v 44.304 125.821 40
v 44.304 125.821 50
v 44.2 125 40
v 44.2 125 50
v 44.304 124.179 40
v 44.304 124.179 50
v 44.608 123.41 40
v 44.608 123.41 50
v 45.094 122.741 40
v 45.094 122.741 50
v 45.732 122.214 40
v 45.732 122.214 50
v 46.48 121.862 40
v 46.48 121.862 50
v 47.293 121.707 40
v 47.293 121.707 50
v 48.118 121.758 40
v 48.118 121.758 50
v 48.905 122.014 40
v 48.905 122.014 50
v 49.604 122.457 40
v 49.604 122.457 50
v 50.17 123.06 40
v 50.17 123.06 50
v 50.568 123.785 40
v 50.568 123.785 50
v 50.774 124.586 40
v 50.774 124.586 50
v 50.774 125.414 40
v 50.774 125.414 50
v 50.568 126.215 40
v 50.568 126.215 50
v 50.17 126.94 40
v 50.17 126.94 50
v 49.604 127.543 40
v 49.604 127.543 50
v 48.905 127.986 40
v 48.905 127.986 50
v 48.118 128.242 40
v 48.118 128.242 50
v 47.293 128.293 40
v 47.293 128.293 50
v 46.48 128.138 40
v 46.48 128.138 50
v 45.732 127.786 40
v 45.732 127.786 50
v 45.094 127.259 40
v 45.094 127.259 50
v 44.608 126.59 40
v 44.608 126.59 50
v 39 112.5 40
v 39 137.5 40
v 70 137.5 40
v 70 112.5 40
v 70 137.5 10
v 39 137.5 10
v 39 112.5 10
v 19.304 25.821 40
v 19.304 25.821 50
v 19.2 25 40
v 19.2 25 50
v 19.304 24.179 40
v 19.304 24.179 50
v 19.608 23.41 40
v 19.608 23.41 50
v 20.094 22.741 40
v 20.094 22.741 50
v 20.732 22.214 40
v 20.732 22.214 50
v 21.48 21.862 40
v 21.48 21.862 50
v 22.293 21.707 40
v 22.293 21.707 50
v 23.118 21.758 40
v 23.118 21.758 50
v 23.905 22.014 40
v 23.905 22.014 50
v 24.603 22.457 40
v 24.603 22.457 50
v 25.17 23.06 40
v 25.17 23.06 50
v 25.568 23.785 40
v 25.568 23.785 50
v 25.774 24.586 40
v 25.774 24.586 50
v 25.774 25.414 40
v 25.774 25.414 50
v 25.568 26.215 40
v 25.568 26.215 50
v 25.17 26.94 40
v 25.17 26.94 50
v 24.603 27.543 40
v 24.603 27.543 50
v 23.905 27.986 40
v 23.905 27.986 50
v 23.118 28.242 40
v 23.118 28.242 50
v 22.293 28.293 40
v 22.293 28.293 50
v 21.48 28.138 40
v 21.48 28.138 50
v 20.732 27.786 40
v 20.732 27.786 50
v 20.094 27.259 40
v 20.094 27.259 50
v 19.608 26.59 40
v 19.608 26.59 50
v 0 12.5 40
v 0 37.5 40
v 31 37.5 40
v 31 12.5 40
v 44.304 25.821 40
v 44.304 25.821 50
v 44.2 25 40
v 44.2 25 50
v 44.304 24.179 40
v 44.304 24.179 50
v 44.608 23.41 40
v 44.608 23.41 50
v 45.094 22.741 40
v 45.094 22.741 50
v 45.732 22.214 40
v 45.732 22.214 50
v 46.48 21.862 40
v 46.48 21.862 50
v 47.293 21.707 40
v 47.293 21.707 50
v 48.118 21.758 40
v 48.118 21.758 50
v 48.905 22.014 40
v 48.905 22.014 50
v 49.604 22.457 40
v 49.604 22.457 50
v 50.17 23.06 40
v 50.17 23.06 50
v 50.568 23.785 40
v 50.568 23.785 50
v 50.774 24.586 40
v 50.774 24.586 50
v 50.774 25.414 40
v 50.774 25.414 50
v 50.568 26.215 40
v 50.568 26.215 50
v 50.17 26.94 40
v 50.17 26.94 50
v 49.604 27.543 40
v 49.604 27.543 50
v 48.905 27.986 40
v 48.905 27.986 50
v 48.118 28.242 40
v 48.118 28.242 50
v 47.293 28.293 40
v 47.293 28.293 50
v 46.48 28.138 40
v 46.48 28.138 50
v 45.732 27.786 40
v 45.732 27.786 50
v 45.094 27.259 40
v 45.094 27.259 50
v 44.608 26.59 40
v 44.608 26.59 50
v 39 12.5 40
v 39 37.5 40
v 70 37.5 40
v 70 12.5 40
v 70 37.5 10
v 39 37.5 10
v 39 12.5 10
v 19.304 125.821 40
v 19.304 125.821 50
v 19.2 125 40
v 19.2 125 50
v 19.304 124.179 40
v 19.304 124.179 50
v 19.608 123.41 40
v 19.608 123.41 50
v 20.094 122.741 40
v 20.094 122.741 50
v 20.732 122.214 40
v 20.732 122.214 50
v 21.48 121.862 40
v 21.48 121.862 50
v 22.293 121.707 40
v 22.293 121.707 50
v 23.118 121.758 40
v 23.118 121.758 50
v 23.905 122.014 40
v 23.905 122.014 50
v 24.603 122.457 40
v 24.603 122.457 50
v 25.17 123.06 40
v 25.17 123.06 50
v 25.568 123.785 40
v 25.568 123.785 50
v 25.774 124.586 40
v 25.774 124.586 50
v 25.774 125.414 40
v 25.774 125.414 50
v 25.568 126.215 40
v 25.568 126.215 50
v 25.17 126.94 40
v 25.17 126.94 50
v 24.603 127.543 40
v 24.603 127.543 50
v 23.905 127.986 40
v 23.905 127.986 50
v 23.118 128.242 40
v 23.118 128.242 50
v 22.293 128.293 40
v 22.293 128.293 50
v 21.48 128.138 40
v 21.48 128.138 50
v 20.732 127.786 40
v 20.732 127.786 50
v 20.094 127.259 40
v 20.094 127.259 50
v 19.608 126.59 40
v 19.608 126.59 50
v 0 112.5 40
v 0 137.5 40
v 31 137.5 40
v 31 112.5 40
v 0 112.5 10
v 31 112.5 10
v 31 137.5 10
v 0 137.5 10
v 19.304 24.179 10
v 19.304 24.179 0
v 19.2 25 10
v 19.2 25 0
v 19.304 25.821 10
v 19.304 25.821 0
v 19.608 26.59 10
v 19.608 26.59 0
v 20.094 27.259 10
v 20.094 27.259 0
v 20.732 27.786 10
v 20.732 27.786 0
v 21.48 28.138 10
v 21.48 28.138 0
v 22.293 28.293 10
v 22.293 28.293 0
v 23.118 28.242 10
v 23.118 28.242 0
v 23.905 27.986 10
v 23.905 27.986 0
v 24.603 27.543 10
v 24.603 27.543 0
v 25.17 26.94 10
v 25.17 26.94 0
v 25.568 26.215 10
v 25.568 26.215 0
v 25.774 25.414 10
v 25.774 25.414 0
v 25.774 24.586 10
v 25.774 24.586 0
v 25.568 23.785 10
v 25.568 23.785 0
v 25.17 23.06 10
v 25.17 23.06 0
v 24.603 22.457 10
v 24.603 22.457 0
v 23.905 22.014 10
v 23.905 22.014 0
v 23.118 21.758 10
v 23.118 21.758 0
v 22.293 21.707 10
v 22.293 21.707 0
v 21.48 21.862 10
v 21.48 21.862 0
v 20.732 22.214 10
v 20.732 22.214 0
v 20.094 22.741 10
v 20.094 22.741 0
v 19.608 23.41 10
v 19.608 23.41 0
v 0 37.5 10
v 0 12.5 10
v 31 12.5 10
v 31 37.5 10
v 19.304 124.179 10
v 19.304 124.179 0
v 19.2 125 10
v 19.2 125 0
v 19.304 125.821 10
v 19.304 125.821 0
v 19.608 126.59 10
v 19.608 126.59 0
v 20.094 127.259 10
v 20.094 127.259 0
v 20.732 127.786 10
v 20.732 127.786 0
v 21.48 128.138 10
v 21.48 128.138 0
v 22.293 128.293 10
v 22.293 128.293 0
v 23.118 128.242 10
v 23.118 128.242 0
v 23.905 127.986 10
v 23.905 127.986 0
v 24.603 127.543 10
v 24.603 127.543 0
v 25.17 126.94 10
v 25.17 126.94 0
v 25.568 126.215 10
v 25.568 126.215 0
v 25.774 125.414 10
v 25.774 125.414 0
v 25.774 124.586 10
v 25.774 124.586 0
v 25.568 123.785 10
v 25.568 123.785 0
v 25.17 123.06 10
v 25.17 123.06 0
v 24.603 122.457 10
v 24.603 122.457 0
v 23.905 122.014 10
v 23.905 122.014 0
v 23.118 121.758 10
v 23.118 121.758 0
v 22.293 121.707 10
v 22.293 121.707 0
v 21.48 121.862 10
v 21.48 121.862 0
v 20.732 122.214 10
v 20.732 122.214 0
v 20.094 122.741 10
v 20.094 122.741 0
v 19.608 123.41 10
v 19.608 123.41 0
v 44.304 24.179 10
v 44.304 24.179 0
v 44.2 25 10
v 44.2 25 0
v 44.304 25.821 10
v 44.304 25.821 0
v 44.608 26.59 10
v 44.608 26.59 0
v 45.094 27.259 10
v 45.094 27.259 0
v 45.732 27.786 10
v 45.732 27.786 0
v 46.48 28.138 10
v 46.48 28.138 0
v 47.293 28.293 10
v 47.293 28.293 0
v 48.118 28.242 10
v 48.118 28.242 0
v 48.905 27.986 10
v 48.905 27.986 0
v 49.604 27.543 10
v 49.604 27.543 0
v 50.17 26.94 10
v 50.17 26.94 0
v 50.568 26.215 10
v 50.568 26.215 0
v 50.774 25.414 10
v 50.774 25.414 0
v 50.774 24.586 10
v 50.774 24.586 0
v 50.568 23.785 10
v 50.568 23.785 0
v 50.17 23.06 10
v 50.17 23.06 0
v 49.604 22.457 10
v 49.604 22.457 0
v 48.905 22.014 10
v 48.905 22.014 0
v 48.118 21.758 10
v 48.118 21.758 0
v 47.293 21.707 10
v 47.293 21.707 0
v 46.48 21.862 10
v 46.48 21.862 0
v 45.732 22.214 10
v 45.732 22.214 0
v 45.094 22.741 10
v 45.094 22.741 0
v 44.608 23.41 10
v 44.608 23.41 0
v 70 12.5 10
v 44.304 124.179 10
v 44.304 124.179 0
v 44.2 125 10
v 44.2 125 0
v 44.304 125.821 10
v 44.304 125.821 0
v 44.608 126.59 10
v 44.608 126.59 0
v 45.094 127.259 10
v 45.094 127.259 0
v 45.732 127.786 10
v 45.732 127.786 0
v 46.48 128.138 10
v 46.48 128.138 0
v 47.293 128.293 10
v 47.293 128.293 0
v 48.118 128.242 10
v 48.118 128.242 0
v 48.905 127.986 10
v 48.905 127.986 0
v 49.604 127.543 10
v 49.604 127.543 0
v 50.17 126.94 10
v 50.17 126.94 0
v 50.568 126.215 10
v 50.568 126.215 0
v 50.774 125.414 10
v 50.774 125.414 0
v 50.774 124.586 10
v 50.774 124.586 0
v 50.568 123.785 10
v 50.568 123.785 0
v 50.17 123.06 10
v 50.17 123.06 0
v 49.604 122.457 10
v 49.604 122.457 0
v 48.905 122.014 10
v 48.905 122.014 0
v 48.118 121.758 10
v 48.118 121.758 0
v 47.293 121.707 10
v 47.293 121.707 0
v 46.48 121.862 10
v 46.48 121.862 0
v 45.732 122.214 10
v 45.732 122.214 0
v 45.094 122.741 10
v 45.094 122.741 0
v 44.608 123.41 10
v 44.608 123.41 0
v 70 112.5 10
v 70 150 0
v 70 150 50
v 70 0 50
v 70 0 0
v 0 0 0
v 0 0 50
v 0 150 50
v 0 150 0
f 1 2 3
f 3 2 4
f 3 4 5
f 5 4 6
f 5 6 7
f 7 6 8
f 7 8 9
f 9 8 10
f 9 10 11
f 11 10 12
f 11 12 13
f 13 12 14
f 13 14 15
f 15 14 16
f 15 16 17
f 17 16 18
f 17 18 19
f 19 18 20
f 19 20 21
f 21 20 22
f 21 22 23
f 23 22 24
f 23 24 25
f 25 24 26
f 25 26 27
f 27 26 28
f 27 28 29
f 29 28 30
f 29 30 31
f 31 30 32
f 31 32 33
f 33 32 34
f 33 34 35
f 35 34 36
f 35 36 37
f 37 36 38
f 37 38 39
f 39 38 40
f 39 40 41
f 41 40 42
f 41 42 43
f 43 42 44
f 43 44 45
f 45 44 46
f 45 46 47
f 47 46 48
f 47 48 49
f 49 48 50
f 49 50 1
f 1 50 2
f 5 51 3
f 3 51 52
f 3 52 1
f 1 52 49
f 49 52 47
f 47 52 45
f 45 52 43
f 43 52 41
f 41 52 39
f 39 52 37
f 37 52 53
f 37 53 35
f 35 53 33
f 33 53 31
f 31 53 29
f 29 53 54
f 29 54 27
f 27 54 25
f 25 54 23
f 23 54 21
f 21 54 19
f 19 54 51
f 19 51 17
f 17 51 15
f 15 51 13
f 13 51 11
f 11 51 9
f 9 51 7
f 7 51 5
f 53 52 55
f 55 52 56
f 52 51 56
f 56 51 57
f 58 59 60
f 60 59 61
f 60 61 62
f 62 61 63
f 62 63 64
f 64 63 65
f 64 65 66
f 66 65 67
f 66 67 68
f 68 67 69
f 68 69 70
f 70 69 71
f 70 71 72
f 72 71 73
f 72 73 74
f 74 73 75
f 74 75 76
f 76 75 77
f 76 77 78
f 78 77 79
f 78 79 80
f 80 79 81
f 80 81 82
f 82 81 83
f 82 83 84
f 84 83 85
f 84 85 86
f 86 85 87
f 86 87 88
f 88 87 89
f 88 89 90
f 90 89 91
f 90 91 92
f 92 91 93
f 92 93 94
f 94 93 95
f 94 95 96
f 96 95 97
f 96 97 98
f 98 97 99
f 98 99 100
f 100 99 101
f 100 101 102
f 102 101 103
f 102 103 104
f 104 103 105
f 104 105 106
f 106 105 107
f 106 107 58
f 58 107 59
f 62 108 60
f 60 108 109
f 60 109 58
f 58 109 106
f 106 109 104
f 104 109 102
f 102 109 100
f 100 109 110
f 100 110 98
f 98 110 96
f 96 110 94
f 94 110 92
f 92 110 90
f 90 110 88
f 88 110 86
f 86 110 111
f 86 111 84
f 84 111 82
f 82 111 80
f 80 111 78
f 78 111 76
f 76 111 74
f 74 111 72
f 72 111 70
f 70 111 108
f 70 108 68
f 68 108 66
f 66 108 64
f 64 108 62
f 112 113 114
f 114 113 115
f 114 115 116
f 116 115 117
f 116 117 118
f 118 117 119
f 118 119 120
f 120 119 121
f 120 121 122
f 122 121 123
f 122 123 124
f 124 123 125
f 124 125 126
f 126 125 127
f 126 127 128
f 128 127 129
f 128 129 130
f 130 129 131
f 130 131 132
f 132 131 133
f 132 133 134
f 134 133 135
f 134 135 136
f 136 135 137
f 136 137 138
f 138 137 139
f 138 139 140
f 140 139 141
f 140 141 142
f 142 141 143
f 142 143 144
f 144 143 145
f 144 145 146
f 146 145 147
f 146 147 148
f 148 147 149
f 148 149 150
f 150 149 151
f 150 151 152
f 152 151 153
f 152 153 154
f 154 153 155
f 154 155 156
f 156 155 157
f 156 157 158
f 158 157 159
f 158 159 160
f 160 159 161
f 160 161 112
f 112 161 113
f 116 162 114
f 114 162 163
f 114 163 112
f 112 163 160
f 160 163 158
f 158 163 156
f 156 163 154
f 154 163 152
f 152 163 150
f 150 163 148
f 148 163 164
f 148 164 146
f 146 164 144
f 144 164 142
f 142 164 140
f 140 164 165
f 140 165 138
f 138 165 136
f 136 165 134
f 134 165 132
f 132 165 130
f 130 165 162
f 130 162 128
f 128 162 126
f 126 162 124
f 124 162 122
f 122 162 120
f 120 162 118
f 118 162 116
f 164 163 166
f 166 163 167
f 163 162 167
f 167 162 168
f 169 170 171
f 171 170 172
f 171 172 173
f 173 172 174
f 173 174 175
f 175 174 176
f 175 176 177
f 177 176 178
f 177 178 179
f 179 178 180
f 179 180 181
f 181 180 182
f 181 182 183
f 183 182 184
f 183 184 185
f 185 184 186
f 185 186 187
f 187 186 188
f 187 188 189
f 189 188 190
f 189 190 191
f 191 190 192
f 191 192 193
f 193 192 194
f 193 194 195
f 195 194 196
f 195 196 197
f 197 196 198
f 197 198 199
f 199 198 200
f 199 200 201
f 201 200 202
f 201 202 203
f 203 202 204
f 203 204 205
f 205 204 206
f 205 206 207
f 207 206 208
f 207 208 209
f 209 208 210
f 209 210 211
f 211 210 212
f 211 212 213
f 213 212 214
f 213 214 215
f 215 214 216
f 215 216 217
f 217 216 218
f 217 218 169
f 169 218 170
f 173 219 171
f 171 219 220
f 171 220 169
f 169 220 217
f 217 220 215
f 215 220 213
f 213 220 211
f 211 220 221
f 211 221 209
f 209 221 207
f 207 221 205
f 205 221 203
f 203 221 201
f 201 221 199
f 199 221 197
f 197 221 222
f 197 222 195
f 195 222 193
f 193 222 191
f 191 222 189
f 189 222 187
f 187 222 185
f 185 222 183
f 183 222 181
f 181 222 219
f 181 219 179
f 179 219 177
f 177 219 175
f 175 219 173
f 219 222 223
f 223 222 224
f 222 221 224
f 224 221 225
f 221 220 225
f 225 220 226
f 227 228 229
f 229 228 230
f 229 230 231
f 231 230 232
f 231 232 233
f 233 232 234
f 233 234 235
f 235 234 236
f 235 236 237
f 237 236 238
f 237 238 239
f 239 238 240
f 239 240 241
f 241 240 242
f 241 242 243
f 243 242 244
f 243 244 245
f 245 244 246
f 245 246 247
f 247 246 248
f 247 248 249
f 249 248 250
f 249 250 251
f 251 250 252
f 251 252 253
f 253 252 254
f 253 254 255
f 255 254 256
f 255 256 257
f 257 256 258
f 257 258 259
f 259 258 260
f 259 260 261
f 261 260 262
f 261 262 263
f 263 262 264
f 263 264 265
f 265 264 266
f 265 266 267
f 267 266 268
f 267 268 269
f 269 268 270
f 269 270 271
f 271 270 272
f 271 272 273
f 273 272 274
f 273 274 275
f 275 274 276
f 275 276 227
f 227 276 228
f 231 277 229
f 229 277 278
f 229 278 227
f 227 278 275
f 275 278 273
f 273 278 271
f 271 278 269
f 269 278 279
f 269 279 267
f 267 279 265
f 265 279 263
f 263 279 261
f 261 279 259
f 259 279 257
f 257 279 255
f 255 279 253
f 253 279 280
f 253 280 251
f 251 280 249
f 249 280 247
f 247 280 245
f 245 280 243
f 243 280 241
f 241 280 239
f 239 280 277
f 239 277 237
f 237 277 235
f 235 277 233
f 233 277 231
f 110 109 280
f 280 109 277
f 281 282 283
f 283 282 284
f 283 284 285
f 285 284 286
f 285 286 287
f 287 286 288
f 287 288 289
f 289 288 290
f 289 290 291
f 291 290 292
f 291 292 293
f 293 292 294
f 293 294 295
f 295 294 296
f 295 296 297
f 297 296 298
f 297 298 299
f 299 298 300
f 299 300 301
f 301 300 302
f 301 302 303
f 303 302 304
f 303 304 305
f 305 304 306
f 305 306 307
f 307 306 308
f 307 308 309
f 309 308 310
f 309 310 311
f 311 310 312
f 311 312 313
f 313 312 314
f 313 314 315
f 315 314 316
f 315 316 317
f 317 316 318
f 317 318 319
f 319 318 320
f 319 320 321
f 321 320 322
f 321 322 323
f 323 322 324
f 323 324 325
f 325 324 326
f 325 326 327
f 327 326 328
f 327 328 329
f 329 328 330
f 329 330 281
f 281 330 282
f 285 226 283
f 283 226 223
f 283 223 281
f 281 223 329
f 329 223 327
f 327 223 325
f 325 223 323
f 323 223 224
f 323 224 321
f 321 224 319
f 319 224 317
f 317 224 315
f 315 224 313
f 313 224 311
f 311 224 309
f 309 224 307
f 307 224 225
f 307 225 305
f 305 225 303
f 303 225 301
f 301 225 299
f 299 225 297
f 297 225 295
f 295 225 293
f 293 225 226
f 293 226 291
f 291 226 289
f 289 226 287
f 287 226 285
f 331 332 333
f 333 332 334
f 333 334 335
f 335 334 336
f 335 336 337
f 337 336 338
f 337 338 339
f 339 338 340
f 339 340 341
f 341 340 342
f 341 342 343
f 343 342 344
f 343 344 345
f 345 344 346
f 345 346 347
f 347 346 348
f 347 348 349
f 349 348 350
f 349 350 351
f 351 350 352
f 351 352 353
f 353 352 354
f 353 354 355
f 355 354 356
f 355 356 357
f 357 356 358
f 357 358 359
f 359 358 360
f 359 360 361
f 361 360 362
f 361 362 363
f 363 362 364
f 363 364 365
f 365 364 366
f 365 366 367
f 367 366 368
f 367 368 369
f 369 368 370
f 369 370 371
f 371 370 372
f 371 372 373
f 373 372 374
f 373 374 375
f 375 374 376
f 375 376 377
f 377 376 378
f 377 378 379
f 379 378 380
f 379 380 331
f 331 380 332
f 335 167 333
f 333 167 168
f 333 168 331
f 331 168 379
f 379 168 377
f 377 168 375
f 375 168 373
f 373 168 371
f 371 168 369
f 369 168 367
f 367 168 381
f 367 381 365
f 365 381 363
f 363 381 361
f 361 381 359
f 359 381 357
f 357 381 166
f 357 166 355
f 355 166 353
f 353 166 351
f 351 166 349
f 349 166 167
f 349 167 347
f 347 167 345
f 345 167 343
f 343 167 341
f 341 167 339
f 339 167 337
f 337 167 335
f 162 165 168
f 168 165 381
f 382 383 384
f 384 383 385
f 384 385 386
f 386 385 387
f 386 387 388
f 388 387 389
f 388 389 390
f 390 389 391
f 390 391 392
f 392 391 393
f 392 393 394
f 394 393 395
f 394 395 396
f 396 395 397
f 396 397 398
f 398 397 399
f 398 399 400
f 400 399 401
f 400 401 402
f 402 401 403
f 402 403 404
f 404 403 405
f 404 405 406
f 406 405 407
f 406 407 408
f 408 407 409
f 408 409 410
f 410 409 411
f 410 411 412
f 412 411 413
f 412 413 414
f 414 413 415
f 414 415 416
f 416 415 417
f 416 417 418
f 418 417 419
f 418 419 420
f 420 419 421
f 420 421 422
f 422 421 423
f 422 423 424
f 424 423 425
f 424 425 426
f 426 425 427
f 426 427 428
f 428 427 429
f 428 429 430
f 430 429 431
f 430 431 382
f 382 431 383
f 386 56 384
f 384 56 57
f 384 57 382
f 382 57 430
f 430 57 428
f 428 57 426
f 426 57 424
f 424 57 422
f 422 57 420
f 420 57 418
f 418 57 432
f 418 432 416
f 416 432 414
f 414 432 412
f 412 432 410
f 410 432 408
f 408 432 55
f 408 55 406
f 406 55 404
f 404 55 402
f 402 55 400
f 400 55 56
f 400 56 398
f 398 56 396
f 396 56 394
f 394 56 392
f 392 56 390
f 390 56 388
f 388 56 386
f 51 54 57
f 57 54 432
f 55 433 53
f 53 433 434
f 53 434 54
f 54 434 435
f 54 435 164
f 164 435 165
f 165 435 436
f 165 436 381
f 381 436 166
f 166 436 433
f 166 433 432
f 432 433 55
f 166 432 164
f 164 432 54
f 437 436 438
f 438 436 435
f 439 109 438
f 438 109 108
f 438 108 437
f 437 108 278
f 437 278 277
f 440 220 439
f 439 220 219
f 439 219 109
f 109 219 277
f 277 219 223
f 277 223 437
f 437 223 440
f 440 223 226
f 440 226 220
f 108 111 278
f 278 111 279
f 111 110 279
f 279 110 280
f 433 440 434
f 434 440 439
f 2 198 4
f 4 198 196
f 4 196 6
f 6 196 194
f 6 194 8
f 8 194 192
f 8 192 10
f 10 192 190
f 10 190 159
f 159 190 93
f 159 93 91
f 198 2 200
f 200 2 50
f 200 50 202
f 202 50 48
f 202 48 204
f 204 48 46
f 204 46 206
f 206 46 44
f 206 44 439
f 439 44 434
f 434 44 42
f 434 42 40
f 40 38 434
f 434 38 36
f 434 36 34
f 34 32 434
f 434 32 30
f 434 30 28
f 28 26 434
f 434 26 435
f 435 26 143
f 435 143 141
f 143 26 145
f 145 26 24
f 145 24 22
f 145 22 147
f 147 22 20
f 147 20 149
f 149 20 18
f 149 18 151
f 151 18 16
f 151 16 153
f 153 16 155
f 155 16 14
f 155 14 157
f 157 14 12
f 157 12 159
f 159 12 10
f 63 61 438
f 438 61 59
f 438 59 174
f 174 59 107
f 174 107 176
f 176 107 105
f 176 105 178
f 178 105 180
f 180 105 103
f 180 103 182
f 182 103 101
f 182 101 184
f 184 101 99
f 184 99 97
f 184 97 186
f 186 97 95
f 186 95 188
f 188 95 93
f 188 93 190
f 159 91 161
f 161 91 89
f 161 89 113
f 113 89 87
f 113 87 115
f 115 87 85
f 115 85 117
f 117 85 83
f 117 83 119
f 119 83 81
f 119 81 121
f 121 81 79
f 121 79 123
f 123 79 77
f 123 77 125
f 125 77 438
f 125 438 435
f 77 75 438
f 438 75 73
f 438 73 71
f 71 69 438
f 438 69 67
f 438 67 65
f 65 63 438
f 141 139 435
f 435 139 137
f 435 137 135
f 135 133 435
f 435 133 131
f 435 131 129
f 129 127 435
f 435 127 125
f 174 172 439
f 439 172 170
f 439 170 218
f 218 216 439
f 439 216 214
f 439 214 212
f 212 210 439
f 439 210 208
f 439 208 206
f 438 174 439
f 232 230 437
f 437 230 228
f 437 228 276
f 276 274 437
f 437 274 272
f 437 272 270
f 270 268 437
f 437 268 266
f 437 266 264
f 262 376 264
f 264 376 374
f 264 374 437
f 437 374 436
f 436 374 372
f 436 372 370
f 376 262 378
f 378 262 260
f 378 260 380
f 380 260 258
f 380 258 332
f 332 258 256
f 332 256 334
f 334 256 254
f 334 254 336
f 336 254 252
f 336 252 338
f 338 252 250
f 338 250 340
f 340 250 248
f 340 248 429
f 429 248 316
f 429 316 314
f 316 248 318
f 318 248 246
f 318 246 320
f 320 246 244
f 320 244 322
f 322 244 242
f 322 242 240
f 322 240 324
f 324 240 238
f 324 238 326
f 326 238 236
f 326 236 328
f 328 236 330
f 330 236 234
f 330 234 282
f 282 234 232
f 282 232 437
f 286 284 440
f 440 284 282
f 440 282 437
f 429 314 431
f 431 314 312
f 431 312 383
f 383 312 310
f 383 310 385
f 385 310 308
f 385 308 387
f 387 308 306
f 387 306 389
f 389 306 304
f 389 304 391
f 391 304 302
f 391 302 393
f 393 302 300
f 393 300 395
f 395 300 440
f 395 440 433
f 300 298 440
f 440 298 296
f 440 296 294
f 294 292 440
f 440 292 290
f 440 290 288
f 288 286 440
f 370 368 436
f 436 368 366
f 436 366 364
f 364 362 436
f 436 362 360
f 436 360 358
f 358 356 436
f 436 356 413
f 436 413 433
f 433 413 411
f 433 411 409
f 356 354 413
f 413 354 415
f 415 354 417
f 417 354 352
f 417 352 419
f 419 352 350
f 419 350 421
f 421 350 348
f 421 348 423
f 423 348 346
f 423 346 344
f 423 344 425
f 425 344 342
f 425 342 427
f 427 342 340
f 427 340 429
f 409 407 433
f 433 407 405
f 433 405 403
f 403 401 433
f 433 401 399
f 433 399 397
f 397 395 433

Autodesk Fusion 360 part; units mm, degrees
sketch "Sketch1" plane through (0, 0, 0) normal (0, 0, 1) x (1, 0, 0)
  line L0 (0, 0) -> (70, 0)
  line L1 (70, 0) -> (70, 150)
  line L2 (70, 150) -> (0, 150)
  line L3 (0, 150) -> (0, 0)
  circle A0 centre (22.5, 25) radius 3.3
  circle A1 centre (47.5, 25) radius 3.3
  circle A2 centre (22.5, 125) radius 3.3
  circle A3 centre (47.5, 125) radius 3.3
  line L4 (22.5, 25) -> (0, 25)
  line L5 (0, 25) -> (31, 25)
  line L6 (31, 25) -> (31, 37.5)
  line L7 (31, 37.5) -> (0, 37.5)
  line L8 (0, 37.5) -> (0, 25)
  line L9 (0, 25) -> (31, 25)
  line L10 (31, 25) -> (31, 12.5)
  line L11 (31, 12.5) -> (0, 12.5)
  line L12 (0, 12.5) -> (0, 25)
  line L13 (70, 37.5) -> (39, 37.5)
  line L14 (39, 37.5) -> (39, 12.5)
  line L15 (39, 12.5) -> (70, 12.5)
  line L16 (70, 12.5) -> (70, 37.5)
  line L17 (70, 137.5) -> (39, 137.5)
  line L18 (39, 137.5) -> (39, 112.5)
  line L19 (39, 112.5) -> (70, 112.5)
  line L20 (70, 112.5) -> (70, 137.5)
  line L21 (0, 137.5) -> (31, 137.5)
  line L22 (31, 137.5) -> (31, 112.5)
  line L23 (31, 112.5) -> (0, 112.5)
  line L24 (0, 112.5) -> (0, 137.5)
  point P0 (22.5, 25)
  point P1 (47.5, 25)
  point P2 (47.5, 125)
  point P3 (22.5, 125)
  dimension "d1" = 70
  dimension "d2" = 150
  dimension "d3" = 25
  dimension "d4" = 22.5
  dimension "d5" = 25
  dimension "d6" = 22.5
  dimension "d7" = 25
  dimension "d8" = 47.5
  dimension "d9" = 25
  dimension "d10" = 22.5
  dimension "d11" = 22.5
  dimension "d12" = 25
  dimension "d13" = 25
  dimension "d14" = 6.6
  dimension "d15" = 6.6
  dimension "d16" = 6.6
  dimension "d17" = 6.6
  dimension "d18" = 31
  dimension "d19" = 12.5
  dimension "d20" = 12.5
  dimension "d21" = 31
  dimension "d22" = 25
  dimension "d23" = 12.5
  dimension "d24" = 31
  dimension "d25" = 25
  dimension "d26" = 31
  dimension "d27" = 25
  dimension "d28" = 12.5
  dimension "d29" = 12.5
extrude "Extrude1" add sketch "Sketch1" along normal blind 50 contours L0 L1 L2 L3 L6 L7 L10 L11 L13 L14 L15 L17 L18 L19 L21 L22 L23
extrude "Extrude2" add sketch "Sketch1" along normal blind 10 contours L3 A0 L4 L5 L9 L10 L11 L12 | L1 L13 L14 L15 L16 | L3 A0 L4 L5 L6 L7 L8 L9 | L1 L17 L18 L19 L20 | L3 L21 L22 L23 L24
extrude "Extrude3" add 4 faces at (63.6, 25, 10) (6.4, 25, 10) (6.4, 125, 10) (63.6, 125, 10) along direction (0, 0, -1) blind 10 start surface through (0, 0, 50) normal (0, 0, 1)
equation "d14 = 6 mm + 0.6 mm"
